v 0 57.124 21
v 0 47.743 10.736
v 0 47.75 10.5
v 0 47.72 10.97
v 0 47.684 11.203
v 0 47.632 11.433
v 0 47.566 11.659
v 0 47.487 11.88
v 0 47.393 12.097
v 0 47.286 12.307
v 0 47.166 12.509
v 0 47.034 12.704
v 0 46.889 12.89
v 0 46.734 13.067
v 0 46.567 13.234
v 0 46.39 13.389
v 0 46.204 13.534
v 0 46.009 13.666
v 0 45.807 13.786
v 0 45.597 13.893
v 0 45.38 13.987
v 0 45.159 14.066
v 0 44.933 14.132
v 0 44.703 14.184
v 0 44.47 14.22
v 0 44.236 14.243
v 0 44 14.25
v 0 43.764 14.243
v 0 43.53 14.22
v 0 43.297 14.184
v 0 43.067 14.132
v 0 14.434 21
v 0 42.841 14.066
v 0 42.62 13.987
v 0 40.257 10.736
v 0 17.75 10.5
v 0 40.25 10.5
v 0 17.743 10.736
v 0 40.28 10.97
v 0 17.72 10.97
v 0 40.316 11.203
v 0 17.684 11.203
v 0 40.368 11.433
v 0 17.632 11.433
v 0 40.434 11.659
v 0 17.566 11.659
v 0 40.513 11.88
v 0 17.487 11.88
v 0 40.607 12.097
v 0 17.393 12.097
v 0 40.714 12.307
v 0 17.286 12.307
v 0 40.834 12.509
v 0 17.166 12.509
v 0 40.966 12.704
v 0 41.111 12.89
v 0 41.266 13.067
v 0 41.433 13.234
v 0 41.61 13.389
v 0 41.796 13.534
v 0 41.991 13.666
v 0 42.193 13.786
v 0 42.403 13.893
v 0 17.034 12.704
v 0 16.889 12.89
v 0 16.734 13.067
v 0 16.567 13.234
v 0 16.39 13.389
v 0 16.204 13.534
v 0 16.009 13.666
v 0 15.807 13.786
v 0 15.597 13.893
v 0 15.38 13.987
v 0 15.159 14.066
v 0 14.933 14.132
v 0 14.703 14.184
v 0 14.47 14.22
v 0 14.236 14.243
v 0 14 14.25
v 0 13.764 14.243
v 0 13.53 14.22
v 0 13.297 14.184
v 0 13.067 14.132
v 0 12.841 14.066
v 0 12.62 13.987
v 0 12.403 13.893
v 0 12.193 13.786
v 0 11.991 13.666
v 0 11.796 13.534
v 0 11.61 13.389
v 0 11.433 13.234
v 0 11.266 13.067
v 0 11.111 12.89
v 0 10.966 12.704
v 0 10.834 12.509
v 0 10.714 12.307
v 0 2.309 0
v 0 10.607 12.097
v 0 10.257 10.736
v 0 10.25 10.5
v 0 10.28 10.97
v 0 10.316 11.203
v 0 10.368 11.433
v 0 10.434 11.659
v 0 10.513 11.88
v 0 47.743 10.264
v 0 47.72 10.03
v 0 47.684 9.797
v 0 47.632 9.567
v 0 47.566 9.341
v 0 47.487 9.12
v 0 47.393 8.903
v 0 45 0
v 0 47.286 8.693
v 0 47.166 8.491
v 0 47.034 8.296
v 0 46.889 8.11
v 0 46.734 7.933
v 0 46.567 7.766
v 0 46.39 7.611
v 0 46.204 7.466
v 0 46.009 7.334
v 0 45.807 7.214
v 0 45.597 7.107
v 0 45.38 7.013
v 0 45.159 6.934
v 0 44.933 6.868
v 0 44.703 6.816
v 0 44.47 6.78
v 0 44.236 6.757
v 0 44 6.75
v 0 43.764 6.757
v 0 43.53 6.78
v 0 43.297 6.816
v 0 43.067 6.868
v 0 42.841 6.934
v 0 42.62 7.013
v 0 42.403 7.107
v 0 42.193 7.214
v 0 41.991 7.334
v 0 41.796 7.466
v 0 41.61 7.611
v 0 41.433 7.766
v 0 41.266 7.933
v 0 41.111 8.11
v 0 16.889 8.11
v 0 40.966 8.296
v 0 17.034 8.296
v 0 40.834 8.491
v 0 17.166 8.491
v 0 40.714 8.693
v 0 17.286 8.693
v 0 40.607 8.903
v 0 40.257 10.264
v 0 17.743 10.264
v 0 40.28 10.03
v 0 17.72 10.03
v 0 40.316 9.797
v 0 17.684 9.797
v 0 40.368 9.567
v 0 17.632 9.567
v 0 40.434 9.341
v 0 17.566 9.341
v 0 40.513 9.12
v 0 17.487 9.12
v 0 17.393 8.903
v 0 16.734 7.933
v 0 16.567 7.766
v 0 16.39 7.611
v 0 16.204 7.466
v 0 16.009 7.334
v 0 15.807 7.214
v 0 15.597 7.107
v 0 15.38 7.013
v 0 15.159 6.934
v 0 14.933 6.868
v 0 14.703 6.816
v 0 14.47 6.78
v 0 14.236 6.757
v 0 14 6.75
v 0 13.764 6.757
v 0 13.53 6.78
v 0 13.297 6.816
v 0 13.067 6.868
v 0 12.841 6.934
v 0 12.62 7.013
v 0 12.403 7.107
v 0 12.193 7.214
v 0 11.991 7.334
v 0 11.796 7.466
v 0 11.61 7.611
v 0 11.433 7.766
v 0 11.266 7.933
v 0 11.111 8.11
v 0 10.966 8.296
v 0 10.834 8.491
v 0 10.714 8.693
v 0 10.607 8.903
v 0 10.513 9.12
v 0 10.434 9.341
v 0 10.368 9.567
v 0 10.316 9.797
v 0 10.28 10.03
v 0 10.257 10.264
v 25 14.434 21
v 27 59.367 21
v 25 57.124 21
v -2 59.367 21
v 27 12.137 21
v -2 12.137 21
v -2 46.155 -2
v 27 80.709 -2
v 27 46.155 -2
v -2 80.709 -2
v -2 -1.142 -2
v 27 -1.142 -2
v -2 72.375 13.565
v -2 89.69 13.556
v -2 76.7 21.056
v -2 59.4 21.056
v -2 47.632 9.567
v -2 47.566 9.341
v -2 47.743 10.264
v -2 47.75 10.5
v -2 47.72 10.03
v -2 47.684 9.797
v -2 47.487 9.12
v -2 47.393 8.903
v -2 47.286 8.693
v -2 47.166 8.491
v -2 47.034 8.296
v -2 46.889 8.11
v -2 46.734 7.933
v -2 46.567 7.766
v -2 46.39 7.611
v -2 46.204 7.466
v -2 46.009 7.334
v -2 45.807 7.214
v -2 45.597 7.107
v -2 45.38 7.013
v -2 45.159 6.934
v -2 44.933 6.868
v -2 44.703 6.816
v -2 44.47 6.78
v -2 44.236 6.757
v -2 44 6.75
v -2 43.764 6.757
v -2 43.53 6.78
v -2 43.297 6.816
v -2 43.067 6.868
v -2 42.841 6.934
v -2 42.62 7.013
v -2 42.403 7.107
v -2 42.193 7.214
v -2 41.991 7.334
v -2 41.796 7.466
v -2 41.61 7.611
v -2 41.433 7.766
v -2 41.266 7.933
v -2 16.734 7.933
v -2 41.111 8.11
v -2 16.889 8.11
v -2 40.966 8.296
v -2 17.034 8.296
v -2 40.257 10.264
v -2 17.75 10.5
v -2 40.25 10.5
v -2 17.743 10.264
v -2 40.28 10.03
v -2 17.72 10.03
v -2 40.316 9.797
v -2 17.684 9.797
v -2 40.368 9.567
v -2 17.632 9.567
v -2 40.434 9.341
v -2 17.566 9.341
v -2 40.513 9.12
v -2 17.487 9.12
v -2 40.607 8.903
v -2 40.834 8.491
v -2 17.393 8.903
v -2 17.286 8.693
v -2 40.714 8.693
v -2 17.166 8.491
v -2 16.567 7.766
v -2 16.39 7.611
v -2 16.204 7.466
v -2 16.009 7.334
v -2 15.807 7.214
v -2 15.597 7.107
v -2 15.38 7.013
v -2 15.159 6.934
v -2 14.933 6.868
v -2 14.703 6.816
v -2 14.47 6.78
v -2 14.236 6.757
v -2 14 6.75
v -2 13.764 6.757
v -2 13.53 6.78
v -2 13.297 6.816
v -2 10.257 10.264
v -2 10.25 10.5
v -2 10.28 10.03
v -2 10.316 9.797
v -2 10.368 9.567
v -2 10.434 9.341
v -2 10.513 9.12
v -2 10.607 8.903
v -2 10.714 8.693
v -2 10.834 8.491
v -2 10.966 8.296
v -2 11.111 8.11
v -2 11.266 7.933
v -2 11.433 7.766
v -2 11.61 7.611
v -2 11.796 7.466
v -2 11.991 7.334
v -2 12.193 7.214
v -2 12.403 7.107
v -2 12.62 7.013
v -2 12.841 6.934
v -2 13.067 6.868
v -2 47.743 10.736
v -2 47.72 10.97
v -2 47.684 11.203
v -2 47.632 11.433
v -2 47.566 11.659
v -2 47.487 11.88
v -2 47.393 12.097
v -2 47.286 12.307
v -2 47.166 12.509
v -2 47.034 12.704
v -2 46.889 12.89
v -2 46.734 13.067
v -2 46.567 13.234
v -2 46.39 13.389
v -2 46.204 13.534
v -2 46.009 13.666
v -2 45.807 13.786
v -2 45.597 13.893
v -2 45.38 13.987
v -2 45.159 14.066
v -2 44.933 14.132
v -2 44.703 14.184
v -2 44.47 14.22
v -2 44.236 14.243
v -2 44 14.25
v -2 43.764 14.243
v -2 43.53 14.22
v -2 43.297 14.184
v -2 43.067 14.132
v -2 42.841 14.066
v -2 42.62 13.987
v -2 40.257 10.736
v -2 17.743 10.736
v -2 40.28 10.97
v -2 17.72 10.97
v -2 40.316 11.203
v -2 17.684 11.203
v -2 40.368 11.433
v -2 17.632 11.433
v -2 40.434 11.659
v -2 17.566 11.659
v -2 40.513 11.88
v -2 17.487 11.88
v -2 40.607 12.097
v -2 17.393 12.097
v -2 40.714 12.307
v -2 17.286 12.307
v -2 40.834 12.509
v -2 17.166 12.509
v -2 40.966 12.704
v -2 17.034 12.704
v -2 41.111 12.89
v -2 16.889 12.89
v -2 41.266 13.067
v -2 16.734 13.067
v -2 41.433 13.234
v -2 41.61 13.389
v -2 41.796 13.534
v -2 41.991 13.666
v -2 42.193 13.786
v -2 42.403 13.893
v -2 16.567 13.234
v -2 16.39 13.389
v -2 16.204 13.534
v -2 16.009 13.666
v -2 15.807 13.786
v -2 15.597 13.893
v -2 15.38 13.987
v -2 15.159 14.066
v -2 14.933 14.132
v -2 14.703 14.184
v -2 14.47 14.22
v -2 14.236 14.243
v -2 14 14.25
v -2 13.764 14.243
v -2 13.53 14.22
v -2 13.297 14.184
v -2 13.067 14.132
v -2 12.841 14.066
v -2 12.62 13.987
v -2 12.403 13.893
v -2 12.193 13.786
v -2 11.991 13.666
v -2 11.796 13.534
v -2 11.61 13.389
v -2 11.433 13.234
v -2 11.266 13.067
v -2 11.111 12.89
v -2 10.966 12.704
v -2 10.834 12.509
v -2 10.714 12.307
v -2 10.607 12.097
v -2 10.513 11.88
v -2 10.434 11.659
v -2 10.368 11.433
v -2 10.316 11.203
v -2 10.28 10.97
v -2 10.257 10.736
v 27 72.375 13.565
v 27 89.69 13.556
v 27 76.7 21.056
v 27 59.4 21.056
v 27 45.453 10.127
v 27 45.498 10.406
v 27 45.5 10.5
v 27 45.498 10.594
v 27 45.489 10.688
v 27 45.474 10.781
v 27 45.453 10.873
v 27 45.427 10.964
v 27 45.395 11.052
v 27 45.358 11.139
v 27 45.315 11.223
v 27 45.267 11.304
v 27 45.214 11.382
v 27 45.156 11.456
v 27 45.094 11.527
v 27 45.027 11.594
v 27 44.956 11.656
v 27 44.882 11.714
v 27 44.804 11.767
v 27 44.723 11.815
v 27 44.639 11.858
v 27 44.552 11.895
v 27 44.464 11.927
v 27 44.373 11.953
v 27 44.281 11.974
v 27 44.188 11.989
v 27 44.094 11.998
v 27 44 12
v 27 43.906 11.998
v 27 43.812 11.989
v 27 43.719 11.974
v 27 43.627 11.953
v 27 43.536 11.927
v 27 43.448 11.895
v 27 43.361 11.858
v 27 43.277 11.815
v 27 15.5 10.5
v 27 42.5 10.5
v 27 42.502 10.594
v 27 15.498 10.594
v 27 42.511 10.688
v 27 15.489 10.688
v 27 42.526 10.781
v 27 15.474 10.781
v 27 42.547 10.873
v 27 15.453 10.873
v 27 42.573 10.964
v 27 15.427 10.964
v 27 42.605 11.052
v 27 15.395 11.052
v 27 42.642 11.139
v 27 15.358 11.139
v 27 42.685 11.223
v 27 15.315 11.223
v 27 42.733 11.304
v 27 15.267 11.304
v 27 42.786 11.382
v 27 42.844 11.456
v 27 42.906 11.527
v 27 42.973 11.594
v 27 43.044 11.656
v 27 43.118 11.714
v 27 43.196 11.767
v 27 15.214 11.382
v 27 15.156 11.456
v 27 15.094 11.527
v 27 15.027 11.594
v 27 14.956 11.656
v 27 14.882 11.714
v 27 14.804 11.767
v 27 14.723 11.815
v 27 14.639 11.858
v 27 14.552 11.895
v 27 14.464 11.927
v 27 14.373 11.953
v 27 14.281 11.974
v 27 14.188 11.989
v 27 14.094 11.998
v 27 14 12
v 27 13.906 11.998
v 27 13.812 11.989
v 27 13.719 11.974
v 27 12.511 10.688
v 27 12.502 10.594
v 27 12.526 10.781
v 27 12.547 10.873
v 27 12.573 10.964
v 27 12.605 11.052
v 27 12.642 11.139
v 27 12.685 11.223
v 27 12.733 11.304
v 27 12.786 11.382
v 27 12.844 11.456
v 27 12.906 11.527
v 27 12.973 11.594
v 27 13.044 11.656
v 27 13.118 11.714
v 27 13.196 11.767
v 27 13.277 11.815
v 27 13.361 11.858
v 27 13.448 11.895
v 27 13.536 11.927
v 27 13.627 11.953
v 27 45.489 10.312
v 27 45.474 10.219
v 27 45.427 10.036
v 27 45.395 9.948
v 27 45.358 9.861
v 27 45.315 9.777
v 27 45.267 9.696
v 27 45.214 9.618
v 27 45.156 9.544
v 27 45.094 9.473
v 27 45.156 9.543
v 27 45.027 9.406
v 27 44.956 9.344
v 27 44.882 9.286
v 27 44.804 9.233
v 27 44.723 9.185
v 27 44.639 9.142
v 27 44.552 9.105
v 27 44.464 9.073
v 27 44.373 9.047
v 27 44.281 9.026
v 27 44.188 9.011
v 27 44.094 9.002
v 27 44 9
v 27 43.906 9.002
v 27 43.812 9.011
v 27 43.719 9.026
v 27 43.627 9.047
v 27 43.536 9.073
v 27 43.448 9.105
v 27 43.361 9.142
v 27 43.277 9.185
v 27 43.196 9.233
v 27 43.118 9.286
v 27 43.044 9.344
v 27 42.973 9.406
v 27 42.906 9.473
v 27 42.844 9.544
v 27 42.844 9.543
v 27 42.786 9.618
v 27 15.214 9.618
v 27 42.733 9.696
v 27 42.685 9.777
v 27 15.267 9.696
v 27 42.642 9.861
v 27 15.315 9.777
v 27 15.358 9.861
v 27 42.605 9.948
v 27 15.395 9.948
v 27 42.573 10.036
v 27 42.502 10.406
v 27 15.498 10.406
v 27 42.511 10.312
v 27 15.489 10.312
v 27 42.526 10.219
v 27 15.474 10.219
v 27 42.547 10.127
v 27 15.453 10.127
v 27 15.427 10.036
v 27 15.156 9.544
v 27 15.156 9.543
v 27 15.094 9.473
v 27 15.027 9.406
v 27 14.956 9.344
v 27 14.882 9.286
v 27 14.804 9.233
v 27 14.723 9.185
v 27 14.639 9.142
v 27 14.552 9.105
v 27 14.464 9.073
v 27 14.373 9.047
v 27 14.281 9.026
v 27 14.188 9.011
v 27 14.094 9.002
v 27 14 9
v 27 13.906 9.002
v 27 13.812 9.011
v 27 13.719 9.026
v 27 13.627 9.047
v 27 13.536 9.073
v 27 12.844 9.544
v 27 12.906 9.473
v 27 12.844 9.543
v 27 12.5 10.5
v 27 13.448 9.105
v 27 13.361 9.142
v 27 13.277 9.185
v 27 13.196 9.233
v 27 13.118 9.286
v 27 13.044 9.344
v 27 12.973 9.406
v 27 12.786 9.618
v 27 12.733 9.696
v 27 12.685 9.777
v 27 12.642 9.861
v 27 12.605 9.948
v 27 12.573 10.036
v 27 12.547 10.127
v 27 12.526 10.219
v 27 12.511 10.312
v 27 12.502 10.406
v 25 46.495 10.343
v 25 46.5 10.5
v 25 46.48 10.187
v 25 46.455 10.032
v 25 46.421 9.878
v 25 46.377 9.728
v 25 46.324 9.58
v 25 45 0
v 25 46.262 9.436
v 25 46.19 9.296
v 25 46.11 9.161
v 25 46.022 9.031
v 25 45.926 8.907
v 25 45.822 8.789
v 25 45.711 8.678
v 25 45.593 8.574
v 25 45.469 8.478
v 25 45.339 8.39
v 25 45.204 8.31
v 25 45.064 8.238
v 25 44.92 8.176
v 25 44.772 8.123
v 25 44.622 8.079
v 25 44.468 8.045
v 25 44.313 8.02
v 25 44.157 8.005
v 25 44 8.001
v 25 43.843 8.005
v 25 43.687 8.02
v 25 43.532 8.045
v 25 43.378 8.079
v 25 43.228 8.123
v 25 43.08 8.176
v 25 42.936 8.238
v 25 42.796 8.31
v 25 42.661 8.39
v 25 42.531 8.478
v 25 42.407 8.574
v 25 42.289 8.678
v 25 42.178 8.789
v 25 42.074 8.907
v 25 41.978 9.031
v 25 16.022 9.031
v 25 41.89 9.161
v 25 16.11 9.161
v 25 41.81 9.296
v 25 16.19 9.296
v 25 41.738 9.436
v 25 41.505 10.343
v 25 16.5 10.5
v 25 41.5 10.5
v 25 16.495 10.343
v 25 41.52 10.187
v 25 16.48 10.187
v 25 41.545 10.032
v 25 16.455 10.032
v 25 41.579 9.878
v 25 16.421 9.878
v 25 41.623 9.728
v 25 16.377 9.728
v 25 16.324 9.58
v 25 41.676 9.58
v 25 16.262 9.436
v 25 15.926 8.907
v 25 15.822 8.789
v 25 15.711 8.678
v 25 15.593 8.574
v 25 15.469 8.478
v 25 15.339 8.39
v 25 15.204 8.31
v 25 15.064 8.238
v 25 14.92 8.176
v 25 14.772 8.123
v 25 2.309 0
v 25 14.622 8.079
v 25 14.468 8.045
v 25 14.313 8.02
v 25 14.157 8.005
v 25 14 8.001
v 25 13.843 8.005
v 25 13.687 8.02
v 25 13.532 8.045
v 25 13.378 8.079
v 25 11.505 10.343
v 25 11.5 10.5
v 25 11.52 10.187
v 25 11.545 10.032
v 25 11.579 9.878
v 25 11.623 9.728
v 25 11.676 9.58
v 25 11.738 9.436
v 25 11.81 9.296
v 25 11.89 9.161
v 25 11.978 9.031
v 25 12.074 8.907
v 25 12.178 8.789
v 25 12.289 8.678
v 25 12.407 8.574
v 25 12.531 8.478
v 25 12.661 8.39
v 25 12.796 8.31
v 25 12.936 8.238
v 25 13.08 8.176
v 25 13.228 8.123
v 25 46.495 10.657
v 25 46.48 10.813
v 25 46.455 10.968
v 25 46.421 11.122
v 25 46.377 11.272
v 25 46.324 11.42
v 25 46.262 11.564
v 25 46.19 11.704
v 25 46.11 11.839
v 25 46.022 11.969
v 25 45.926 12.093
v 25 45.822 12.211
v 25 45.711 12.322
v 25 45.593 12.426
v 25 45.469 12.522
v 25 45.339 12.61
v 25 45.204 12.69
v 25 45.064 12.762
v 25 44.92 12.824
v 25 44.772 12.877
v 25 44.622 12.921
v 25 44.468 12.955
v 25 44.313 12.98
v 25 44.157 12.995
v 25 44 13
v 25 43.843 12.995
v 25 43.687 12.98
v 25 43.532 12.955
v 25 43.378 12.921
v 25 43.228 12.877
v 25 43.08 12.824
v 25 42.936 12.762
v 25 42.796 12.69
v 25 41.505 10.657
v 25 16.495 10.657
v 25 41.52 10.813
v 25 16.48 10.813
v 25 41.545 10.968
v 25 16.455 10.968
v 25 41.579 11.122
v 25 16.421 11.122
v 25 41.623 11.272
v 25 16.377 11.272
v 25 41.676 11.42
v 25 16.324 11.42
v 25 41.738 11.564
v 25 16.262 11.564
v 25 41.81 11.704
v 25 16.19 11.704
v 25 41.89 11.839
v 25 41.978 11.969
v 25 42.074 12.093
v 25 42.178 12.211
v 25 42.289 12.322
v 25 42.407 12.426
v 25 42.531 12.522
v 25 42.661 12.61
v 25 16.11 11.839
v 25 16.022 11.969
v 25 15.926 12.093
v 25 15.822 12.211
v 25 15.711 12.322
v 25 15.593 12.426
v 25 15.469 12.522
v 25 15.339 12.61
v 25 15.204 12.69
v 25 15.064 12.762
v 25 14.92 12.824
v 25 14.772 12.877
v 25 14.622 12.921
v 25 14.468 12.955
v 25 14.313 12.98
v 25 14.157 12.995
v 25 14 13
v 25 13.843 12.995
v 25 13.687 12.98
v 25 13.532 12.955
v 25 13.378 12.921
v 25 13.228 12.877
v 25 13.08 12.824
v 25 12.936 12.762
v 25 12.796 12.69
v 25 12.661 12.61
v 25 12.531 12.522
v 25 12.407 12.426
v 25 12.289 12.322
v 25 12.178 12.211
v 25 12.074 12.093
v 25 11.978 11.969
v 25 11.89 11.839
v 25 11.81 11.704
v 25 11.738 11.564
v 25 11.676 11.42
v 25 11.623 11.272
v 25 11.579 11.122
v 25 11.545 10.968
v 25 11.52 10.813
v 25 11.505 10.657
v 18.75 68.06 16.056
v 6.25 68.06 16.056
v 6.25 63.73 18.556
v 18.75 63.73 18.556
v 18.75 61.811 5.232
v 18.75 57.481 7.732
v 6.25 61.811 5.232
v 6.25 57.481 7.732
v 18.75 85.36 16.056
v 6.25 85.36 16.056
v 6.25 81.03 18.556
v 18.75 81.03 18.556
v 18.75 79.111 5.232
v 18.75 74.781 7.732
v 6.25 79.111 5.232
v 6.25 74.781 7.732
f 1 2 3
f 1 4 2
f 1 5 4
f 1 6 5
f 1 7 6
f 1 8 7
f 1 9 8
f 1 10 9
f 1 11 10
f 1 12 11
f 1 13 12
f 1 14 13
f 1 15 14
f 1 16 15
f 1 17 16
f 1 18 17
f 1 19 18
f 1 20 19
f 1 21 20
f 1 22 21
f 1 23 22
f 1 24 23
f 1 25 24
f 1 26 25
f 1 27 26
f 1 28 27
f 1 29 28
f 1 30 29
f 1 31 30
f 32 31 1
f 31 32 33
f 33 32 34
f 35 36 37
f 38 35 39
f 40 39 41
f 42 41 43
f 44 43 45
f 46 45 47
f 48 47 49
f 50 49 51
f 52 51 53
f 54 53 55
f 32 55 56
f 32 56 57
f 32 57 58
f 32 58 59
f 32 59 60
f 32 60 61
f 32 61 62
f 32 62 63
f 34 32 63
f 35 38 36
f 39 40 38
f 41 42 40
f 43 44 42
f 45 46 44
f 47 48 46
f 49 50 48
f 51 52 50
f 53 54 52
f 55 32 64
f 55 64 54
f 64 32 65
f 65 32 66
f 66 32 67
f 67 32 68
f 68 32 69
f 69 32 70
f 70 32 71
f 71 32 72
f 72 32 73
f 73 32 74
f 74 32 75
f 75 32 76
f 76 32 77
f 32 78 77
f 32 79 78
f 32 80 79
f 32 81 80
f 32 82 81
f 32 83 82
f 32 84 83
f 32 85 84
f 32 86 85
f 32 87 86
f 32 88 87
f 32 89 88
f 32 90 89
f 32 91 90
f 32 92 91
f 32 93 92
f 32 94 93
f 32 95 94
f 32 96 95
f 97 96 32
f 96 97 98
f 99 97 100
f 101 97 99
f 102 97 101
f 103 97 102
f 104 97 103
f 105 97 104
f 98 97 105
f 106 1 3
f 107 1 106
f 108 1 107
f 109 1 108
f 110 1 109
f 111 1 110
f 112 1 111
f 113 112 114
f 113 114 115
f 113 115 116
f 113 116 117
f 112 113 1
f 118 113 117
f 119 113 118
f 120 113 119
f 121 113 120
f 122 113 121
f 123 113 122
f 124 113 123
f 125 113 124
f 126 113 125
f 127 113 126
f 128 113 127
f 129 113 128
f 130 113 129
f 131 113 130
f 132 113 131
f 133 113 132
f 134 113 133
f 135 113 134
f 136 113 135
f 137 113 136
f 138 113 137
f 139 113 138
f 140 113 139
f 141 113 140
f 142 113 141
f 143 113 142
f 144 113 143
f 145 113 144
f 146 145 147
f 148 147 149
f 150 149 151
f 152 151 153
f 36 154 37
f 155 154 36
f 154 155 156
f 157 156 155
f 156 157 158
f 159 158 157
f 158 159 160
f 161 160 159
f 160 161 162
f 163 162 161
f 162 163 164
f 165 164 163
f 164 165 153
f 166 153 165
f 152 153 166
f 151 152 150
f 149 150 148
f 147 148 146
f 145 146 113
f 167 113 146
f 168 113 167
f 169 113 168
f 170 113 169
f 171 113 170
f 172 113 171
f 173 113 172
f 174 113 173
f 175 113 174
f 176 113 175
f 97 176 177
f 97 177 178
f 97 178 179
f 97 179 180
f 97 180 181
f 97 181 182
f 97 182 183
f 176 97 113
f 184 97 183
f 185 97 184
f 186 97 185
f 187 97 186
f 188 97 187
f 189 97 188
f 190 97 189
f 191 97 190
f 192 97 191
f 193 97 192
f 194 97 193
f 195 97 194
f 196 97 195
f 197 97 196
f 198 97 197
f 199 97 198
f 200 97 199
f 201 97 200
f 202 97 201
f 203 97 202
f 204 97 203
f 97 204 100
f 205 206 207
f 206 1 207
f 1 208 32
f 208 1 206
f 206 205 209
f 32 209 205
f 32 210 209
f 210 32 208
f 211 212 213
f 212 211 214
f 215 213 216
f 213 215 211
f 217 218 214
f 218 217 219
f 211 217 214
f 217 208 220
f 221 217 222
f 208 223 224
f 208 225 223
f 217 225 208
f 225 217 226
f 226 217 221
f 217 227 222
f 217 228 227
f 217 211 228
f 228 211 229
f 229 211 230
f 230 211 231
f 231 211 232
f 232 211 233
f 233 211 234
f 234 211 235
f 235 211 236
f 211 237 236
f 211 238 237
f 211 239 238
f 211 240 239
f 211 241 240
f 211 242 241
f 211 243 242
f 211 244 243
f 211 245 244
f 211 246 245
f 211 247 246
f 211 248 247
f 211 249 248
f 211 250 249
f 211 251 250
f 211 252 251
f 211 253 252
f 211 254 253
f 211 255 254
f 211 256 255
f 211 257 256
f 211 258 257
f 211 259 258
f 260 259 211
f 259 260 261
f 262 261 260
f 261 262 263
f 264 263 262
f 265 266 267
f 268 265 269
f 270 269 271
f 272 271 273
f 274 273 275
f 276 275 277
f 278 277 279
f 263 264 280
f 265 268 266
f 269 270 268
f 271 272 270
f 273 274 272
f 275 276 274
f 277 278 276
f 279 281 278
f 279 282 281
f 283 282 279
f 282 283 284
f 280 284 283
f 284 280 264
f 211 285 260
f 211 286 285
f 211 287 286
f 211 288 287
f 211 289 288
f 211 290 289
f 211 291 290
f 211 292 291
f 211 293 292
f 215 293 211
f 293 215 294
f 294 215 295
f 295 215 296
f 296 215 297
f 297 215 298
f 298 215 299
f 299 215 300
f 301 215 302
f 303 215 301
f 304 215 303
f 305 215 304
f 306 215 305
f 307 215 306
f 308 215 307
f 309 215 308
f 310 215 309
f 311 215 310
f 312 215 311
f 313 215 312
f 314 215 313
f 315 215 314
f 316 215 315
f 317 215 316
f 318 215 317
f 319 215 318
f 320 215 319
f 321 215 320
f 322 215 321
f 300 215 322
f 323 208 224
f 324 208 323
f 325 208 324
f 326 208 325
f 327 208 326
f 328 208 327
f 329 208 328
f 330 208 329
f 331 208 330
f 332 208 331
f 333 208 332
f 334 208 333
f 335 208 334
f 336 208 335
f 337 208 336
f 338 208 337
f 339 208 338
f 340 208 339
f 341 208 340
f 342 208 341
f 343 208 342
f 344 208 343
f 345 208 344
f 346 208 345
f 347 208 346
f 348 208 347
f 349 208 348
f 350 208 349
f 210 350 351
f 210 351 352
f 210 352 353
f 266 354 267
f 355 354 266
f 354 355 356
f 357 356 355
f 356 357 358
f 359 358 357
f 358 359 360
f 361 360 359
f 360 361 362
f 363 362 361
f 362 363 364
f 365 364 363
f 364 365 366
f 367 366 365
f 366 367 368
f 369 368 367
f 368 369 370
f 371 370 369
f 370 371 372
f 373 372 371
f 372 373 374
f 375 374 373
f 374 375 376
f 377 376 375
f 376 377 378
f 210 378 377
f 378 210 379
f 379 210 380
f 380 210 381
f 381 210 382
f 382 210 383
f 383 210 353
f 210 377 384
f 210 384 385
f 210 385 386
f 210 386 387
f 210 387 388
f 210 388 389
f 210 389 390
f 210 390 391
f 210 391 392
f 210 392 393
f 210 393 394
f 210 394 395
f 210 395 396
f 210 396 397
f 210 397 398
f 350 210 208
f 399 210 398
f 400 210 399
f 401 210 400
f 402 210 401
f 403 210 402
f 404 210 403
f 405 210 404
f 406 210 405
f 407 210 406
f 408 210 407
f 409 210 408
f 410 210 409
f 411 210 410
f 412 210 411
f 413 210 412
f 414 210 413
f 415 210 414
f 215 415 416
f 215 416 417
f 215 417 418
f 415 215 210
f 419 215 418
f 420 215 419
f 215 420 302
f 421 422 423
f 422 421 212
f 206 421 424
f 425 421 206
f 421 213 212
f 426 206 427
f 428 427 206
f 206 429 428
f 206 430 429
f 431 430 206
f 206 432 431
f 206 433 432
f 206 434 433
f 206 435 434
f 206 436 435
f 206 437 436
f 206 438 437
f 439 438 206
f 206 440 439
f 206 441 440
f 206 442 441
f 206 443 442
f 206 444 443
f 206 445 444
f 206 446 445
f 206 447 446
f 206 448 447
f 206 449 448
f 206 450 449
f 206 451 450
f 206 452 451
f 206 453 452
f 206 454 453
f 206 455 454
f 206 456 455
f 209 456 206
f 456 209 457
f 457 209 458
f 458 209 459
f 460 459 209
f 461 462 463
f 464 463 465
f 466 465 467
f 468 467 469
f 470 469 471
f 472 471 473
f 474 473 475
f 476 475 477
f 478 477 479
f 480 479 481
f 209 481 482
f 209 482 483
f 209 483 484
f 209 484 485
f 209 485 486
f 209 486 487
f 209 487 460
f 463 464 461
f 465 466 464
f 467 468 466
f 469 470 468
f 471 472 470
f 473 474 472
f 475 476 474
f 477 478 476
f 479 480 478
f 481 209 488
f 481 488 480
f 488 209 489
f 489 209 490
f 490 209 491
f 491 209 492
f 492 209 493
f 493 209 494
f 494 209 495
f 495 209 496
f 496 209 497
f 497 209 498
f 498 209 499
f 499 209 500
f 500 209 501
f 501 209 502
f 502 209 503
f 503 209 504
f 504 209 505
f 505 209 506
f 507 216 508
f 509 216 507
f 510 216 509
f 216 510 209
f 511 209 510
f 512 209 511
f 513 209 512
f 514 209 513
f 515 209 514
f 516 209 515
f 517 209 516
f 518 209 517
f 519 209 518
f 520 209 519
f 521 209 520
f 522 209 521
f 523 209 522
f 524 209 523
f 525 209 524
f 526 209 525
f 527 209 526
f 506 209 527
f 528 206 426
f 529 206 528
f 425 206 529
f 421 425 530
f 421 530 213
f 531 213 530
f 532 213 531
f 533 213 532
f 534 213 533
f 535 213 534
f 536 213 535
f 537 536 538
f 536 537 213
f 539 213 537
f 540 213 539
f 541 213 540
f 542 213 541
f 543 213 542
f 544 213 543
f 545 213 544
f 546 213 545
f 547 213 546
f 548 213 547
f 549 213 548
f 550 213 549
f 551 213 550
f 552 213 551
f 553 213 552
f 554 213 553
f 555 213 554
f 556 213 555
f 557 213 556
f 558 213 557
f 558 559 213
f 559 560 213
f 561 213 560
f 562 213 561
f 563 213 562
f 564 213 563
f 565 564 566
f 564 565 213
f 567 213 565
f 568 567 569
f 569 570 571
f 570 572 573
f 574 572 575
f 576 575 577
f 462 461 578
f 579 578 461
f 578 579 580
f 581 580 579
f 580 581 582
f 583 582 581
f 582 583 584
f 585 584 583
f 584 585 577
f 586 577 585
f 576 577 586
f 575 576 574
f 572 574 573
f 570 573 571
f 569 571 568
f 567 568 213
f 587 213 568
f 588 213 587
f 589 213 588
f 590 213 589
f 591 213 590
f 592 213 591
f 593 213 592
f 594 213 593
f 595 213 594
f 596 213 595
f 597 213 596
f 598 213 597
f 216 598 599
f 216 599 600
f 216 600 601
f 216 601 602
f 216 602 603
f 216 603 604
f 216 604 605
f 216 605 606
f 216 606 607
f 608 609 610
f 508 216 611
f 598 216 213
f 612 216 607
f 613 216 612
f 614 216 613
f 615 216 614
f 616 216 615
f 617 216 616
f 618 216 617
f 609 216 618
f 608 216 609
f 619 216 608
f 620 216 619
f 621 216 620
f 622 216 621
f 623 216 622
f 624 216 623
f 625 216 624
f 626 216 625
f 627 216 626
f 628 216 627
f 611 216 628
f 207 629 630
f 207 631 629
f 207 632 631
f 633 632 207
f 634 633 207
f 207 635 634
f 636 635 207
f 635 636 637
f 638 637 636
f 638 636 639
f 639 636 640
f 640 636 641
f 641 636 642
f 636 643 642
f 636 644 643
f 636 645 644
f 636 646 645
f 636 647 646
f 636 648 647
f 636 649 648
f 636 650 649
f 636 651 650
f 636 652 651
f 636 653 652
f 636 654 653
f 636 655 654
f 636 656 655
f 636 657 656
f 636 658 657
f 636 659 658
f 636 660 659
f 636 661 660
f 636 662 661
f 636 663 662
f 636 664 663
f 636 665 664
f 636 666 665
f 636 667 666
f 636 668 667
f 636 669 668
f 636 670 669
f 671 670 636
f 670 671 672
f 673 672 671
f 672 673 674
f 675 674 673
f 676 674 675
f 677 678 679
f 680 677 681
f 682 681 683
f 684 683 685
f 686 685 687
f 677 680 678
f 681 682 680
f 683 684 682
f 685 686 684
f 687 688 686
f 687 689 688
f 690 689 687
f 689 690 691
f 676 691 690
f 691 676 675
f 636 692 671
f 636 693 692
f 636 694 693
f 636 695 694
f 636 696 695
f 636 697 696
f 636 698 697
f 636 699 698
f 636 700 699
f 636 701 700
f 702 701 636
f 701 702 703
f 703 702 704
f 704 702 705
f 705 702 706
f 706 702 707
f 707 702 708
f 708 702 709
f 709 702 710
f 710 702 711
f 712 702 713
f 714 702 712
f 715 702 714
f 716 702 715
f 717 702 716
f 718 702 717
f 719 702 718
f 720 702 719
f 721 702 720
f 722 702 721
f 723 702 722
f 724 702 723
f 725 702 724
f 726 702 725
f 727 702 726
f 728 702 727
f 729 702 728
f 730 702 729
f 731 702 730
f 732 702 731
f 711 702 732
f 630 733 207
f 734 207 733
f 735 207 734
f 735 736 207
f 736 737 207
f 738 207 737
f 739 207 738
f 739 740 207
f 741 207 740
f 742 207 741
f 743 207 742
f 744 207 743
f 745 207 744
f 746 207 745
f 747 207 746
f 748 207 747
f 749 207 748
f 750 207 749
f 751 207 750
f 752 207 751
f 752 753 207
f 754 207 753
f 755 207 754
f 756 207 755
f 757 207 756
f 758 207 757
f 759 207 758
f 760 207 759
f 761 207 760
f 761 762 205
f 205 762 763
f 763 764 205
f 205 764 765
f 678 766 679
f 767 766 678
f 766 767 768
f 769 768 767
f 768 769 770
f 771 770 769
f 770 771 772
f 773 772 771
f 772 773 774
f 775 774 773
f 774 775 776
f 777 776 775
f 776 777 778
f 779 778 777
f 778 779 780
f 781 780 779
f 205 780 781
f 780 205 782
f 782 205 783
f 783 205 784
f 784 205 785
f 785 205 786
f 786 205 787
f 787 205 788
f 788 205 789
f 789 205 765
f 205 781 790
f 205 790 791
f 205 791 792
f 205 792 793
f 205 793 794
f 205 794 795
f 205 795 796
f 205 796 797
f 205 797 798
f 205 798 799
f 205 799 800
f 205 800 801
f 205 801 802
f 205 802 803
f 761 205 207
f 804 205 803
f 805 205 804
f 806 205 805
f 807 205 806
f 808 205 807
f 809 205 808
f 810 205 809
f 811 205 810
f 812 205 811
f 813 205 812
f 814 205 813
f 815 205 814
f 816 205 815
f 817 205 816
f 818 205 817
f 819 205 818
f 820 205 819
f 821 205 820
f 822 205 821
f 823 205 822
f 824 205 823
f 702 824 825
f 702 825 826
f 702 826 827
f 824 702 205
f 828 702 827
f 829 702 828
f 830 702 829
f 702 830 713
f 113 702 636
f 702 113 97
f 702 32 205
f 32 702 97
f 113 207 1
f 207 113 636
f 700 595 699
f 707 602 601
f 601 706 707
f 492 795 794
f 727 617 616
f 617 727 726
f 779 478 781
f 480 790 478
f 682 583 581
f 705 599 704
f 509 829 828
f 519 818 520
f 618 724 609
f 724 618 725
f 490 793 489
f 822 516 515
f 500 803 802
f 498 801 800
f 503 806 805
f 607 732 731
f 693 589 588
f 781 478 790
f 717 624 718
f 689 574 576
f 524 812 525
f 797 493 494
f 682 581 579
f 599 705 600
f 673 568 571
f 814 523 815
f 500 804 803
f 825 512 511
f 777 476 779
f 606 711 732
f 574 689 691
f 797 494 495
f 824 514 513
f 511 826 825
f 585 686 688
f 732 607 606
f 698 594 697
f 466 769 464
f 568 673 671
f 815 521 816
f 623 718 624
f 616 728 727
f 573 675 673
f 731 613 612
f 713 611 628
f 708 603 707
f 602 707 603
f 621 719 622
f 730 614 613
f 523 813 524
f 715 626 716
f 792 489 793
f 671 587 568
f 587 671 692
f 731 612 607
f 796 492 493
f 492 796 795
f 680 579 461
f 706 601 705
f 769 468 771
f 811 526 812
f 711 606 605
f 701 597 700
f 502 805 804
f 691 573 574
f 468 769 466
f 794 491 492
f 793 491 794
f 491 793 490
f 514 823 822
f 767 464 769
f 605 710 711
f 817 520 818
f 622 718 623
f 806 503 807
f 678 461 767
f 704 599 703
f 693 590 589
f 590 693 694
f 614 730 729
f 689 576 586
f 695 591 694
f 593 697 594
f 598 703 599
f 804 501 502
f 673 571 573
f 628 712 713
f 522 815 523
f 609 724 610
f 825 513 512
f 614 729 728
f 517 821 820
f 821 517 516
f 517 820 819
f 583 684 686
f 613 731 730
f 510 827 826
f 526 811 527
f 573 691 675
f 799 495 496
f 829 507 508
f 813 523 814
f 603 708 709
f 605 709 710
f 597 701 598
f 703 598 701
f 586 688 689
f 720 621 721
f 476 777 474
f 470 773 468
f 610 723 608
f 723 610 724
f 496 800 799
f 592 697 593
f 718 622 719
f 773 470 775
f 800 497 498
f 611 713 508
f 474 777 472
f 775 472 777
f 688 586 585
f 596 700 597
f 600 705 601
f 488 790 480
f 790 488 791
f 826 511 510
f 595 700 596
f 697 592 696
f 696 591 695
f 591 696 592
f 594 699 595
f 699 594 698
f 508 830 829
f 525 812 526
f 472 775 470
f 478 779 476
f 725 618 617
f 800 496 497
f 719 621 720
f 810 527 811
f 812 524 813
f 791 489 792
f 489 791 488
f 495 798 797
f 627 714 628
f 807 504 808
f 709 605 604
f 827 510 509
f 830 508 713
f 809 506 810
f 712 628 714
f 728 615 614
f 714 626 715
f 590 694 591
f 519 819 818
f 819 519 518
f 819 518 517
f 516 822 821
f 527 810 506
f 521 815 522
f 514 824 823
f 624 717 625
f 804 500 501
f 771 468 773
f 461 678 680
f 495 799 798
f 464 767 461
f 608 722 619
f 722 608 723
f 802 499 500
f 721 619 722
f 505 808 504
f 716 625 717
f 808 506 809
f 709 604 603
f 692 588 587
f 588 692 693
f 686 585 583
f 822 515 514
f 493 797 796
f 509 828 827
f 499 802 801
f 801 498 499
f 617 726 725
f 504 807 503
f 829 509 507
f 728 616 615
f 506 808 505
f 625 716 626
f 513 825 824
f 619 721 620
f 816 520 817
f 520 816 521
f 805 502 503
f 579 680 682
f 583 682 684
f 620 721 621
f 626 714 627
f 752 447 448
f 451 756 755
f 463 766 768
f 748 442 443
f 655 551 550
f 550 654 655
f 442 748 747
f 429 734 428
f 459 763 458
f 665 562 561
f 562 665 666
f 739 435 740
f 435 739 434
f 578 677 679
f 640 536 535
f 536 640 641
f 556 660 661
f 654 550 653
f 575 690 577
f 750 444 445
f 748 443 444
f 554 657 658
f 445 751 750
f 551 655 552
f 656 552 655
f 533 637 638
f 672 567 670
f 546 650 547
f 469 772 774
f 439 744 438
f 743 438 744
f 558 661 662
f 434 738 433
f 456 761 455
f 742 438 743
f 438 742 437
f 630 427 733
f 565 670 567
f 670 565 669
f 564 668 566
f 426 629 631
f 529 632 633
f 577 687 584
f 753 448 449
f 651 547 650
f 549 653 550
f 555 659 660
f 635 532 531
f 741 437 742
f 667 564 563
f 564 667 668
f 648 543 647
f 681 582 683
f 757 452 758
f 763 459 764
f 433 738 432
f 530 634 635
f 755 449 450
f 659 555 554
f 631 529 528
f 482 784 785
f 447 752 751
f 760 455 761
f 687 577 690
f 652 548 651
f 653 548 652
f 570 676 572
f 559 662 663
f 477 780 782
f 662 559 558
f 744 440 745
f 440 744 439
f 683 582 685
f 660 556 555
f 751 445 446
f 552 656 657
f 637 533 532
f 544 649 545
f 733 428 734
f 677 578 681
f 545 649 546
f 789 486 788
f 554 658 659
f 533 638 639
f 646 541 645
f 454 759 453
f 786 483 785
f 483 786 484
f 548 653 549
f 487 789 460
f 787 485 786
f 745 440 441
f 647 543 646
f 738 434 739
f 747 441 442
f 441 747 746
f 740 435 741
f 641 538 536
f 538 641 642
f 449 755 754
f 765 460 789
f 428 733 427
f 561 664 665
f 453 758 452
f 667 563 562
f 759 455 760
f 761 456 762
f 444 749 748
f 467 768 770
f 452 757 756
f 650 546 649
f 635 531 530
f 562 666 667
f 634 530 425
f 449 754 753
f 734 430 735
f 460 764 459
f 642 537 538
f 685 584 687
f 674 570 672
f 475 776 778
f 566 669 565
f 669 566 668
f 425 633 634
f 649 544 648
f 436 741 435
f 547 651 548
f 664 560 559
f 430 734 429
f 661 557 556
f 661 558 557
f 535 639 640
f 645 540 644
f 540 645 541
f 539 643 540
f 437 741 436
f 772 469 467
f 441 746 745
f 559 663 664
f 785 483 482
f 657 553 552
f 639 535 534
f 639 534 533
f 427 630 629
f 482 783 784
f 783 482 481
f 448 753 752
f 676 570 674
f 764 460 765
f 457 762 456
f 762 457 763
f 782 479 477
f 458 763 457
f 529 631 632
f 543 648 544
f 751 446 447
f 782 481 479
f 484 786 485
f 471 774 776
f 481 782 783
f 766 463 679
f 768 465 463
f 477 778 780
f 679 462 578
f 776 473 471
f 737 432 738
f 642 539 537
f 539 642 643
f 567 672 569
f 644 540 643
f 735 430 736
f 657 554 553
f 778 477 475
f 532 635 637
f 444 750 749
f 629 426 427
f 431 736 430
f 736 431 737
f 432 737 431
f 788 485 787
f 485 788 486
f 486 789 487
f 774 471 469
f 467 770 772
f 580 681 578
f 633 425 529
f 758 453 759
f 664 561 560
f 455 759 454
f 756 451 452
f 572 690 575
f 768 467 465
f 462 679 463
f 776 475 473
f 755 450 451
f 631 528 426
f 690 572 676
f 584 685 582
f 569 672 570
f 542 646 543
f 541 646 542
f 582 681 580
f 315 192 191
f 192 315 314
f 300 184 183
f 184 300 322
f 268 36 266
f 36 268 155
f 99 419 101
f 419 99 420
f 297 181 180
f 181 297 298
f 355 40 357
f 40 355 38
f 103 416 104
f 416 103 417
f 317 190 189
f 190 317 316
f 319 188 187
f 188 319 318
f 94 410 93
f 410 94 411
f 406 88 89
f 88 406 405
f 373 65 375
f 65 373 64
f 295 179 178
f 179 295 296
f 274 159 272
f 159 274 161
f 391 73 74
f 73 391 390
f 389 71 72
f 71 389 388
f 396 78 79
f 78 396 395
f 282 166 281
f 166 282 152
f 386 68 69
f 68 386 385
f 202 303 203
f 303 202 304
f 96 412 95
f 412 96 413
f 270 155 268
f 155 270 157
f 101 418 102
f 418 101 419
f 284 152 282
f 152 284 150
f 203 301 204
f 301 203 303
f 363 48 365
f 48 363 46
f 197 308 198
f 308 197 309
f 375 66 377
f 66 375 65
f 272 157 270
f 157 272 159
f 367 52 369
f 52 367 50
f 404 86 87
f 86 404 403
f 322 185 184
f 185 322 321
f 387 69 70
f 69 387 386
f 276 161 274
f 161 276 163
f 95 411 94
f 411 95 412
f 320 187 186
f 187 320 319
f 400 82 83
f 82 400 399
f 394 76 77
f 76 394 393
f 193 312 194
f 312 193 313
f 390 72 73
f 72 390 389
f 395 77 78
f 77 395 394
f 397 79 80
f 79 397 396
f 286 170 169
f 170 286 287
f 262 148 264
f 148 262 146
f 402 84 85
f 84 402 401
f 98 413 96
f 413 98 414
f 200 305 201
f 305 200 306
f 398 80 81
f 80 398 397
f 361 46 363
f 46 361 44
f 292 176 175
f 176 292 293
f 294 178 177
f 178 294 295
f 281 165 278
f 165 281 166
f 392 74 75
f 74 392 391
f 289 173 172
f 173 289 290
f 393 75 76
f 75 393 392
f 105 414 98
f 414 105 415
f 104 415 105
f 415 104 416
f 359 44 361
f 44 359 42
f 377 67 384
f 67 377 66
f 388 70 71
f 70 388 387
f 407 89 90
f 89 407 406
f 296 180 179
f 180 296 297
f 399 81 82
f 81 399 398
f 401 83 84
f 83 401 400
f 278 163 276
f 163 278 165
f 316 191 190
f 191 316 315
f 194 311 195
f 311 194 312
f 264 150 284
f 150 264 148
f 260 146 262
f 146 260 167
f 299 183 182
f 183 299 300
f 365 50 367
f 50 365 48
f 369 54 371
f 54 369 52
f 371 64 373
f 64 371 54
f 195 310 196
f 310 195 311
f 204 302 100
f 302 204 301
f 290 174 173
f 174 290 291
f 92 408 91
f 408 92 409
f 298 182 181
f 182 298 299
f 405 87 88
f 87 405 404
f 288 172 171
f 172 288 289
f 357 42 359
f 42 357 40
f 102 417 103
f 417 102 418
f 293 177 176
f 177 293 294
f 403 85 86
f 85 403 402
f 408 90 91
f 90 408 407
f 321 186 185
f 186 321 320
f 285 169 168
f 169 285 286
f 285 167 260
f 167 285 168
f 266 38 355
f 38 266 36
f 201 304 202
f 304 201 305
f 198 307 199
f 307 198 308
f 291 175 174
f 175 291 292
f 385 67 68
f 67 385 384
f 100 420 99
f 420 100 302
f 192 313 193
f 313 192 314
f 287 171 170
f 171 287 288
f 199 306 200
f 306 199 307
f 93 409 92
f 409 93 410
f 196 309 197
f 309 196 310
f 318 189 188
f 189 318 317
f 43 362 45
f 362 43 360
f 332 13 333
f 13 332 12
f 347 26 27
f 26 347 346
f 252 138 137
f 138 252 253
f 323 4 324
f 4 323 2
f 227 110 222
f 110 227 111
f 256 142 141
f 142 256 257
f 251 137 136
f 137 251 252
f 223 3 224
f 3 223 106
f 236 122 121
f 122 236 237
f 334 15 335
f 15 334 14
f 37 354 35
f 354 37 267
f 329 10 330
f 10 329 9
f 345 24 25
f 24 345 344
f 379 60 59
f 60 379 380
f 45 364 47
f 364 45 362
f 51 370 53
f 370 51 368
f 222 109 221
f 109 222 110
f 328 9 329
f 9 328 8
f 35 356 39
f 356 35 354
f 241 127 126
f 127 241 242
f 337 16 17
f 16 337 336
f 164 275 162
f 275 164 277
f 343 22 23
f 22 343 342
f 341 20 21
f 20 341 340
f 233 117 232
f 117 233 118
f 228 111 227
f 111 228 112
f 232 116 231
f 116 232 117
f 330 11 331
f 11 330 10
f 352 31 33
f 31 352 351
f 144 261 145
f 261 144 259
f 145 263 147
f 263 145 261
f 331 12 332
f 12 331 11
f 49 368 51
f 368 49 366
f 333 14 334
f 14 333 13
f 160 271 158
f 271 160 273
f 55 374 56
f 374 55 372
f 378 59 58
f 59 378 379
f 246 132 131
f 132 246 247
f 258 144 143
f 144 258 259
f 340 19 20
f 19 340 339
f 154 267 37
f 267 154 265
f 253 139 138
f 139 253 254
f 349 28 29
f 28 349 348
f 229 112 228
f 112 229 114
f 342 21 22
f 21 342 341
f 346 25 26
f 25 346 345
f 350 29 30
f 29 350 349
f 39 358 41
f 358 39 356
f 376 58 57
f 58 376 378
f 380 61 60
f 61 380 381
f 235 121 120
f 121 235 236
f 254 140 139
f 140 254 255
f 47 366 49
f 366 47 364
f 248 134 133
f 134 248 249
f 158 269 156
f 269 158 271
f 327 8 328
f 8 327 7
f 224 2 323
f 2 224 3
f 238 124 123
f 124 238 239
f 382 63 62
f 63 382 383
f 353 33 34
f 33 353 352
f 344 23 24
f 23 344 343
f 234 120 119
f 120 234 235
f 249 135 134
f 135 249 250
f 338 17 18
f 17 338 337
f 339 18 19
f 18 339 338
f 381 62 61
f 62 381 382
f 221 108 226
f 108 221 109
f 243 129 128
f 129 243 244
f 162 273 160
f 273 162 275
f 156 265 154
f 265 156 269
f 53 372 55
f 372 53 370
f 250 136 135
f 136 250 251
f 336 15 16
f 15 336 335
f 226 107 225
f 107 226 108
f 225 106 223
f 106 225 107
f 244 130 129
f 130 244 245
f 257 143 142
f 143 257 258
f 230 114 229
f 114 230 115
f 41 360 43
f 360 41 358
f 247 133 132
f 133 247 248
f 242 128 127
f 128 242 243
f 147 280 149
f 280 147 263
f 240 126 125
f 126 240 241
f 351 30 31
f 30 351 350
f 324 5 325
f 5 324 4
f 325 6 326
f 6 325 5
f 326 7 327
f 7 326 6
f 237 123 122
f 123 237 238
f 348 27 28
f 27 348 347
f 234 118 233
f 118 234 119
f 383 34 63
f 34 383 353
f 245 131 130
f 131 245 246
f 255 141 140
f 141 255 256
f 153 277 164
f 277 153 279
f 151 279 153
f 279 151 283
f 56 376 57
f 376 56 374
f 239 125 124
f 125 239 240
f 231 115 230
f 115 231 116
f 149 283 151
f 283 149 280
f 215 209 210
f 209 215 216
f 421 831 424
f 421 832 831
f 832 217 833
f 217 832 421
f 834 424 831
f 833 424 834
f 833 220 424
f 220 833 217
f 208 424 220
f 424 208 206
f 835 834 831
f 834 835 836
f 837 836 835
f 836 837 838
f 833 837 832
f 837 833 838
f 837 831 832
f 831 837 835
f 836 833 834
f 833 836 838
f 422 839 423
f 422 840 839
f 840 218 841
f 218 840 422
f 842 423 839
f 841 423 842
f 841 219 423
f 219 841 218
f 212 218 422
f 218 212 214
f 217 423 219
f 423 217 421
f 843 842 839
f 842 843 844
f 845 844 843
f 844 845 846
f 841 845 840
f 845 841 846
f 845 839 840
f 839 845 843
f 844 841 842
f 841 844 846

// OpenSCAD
//
// ktRack1
//
//


gap1 = 0.001;
gap2 = 0.002;

panel_thick = 2;

X = 25;
Y = 45;
Z = 21;
R = 30;
H = 15;
D = 18;
UW = 12+0.5;
UH = 4.5+0.5;
UD = 12+0.5;


difference()
{
    union()
    {
        translate([-panel_thick, -panel_thick, -panel_thick]) cube([panel_thick, Y+20, Z+panel_thick]);
        translate([X, -panel_thick, -panel_thick]) cube([panel_thick, Y+20, Z+panel_thick]);
        translate([-panel_thick, -panel_thick, -panel_thick]) cube([X+panel_thick*2, Y+panel_thick*2, panel_thick]);
        translate([0, 0, 0]) rotate([-30, 0, 0]) cube([X, panel_thick, 31]);
        translate([0, Y, 0]) rotate([-30, 0, 0]) cube([X, panel_thick, 31]);
    }
    translate([X-gap1, 14, Z/2]) rotate([0, 90, 0]) cylinder(  panel_thick+gap2, d1= 5, d2=3, $fn=100);
    translate([X-gap1, 44, Z/2]) rotate([0, 90, 0]) cylinder(  panel_thick+gap2, d1=5, d2=3, $fn=100);
    translate([0+gap1, 14, Z/2]) rotate([0, -90, 0]) cylinder(  panel_thick+gap2, d=7.5, $fn=100);
    translate([0+gap1, 44, Z/2]) rotate([0, -90, 0]) cylinder(  panel_thick+gap2, d=7.5, $fn=100);
    translate([-X/2, 0, Z]) cube([X*2, Y+20, 20]);
    translate([-X/2, -27.7, 12]) rotate([-30, 0, 0]) cube([X*2, 30, 35]);
    translate([-X/2, Y, -panel_thick*2]) rotate([-30, 0, 0]) cube([X*2, 30, 35]);
}
difference()
{
    union()
    {
        translate([0, Y+6.4, 7.2]) rotate([-30, 0, 0]) USB();
        translate([0, Y+6.4+H+2.3, 7.2]) rotate([-30, 0, 0]) USB();
    }
        translate([-X/2, -5, -20-panel_thick]) cube([X*2, Y+60, 20]);
}




module USB ()
{
    difference()
    {
        translate([-panel_thick, 0, -panel_thick]) cube([X+panel_thick*2, H, D]);
        translate([X/2-UW/2, H/2-UH/2, -panel_thick+D-UD+gap1]) cube([UW, UH, UD]);
    }
    translate([-panel_thick, 0, -panel_thick-9]) cube([X+panel_thick*2, H, 9]);
}
